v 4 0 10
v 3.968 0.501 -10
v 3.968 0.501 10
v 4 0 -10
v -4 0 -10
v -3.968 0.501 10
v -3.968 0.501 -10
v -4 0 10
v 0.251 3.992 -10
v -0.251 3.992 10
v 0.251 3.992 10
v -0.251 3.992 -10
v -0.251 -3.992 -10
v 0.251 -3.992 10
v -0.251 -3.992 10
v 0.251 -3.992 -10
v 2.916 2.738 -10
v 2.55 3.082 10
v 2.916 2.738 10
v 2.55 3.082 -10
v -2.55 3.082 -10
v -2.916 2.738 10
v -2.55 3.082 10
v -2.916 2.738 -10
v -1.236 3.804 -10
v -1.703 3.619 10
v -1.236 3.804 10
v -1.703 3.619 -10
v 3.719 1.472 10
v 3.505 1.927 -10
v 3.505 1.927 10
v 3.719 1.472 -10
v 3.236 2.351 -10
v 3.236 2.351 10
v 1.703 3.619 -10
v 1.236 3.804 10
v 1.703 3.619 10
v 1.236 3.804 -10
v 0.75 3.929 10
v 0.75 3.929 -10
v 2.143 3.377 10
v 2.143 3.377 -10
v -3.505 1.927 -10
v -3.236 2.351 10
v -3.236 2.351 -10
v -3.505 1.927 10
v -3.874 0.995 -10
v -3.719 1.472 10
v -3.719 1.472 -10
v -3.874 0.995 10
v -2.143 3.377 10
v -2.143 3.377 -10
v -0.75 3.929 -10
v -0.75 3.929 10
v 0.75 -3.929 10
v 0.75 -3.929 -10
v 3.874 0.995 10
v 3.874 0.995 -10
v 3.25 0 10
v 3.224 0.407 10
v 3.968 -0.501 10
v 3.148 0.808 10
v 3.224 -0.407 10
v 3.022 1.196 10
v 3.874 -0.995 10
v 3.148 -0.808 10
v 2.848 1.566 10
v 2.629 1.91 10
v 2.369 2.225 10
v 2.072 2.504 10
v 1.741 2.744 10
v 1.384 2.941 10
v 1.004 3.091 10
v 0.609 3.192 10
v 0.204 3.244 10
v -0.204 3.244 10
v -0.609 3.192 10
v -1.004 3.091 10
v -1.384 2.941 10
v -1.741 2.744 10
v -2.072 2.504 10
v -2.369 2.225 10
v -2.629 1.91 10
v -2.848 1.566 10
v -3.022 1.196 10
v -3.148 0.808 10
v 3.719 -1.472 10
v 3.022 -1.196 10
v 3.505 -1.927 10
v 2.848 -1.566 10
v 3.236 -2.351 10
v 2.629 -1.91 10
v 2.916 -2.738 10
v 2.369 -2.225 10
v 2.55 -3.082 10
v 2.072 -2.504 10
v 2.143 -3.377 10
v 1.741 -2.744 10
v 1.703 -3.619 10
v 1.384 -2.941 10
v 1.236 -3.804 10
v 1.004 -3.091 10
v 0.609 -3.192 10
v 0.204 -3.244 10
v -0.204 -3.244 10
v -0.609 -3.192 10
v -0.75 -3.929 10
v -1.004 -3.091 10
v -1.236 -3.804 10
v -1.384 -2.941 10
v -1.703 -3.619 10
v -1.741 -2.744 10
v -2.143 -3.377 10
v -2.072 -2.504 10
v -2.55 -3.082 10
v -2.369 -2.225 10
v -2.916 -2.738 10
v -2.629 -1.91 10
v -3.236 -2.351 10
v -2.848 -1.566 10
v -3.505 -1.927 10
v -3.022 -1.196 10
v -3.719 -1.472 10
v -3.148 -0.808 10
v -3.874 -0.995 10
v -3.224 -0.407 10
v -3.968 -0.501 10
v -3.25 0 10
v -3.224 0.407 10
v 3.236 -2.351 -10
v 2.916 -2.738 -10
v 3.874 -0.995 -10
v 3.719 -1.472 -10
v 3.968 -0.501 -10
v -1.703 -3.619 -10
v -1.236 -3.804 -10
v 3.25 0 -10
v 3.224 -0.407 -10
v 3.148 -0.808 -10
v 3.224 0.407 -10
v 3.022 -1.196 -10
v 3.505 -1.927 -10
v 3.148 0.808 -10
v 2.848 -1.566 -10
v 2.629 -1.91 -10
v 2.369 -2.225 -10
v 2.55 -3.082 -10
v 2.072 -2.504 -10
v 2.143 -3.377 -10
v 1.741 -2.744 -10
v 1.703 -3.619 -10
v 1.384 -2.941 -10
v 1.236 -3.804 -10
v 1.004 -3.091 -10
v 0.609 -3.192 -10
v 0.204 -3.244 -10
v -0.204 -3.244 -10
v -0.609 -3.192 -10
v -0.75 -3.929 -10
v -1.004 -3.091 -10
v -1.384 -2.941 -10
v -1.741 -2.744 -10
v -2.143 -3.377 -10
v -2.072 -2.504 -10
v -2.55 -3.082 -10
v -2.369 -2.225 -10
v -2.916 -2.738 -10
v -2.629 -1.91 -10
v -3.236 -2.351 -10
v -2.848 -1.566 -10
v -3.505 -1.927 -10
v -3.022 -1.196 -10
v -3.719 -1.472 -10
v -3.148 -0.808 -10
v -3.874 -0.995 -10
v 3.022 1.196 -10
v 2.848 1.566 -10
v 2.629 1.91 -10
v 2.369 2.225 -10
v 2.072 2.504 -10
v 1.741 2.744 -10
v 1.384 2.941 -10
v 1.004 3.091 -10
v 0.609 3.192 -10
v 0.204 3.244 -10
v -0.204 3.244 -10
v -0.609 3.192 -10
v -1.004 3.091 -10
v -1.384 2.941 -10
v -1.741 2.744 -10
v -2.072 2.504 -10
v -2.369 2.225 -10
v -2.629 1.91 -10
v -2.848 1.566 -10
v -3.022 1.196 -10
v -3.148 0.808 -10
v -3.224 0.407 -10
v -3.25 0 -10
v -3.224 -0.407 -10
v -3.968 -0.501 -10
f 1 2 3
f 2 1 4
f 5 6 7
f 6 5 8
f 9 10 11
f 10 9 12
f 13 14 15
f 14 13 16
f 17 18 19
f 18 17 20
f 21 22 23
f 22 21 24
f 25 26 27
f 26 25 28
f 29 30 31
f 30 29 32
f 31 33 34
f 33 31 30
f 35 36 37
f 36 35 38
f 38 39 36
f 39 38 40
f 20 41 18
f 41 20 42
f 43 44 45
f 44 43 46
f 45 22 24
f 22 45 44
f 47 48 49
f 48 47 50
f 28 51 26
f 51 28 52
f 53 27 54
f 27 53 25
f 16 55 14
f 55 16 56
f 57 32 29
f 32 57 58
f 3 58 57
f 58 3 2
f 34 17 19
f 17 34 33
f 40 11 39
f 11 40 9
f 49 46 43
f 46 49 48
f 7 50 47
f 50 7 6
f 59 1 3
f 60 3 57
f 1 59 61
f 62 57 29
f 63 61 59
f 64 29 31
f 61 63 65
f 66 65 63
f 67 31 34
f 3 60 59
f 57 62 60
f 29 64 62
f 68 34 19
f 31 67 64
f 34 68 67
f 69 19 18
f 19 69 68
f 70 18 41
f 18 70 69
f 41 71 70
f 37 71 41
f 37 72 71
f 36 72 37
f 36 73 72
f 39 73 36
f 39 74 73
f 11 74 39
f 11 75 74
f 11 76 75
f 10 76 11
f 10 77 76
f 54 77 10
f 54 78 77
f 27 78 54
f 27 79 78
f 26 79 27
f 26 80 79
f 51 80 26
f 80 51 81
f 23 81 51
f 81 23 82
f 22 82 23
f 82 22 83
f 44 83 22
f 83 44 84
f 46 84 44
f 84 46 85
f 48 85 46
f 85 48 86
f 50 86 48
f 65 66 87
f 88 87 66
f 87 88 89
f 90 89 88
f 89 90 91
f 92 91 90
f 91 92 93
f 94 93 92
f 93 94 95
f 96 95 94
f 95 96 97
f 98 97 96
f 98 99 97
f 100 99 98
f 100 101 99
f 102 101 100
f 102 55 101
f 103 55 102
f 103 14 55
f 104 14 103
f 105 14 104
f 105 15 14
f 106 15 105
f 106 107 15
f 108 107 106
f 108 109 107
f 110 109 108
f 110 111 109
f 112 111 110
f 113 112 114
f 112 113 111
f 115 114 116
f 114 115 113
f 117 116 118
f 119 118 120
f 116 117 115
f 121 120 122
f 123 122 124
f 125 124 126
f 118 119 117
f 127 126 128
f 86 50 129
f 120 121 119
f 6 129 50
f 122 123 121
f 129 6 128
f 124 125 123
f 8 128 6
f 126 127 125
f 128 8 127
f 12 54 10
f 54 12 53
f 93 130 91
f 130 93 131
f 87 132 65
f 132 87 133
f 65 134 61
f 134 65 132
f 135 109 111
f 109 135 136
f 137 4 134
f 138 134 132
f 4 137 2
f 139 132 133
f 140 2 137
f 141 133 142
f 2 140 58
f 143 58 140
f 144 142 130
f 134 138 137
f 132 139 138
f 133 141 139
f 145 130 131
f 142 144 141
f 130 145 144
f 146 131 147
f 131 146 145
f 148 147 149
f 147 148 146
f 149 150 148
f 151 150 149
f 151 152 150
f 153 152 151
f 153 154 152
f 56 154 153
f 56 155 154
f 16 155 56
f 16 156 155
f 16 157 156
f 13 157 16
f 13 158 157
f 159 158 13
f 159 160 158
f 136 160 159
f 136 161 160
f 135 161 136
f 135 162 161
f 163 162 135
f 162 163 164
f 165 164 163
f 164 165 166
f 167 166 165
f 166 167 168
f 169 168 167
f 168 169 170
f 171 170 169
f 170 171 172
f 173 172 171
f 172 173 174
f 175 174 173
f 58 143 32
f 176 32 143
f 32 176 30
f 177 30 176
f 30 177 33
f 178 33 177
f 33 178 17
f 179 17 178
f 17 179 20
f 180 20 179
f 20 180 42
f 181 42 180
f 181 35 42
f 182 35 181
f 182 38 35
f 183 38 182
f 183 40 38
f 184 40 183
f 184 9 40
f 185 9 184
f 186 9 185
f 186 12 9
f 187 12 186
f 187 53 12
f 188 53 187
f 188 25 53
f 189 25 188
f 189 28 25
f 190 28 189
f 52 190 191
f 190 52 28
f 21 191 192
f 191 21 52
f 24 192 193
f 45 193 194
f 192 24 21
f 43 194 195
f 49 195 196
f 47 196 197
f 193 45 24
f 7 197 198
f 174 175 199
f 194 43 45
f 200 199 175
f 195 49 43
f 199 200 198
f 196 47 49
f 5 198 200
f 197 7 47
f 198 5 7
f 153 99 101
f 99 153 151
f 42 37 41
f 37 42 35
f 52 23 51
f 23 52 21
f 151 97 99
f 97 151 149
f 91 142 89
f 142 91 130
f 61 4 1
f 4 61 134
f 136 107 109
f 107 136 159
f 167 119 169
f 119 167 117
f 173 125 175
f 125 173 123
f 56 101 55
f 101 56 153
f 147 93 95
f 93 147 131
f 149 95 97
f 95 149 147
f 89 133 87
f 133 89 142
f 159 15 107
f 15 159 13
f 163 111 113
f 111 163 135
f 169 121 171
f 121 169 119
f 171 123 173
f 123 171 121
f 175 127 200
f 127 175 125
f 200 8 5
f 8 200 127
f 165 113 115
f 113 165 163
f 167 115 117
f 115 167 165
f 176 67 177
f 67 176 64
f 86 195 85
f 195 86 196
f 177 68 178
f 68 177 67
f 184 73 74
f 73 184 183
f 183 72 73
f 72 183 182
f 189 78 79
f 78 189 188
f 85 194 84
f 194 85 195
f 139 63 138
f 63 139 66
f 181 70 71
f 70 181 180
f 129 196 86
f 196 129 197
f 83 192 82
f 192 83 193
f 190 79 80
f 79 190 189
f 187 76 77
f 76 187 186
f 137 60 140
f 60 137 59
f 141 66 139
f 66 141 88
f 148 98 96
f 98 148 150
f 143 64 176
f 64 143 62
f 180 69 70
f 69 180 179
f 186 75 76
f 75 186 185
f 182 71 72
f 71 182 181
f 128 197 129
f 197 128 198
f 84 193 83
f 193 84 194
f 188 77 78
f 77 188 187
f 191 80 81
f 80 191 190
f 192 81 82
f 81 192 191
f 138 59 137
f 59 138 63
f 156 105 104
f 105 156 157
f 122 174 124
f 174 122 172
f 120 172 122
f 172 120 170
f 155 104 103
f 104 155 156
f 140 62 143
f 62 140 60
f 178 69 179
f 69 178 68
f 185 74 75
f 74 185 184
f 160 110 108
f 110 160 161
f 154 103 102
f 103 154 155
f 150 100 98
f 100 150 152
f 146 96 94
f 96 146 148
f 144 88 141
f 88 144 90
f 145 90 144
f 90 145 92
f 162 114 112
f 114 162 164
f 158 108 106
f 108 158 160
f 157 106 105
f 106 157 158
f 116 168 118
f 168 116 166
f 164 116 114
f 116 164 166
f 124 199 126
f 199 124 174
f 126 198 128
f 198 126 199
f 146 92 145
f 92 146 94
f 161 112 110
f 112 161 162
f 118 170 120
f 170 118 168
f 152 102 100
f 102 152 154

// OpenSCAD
$fn = 50;


difference() {
	union() {
		translate(v = [0, 0, -10.0000000000]) {
			cylinder(h = 20, r = 4.0000000000);
		}
	}
	union() {
		translate(v = [0, 0, -100.0000000000]) {
			cylinder(h = 200, r = 3.2500000000);
		}
	}
}
